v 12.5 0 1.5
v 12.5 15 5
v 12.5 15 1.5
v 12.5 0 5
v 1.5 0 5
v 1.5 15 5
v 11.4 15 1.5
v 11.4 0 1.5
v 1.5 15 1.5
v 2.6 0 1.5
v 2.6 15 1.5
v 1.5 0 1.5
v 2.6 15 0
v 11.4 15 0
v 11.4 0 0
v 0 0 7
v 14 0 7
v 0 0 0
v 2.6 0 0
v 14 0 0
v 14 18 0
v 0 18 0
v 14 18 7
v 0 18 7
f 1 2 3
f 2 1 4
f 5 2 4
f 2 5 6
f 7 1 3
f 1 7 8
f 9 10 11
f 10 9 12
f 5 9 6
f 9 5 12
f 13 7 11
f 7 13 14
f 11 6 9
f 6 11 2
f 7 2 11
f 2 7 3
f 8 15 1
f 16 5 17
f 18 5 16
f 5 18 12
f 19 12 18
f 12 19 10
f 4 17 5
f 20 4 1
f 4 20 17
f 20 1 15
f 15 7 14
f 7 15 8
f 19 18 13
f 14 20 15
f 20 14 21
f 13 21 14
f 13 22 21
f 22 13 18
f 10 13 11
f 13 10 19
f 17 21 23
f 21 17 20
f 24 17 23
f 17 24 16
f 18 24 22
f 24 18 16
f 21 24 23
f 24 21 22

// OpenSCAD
module pureconnect_cover() {
  difference() {
    cube([14, 18, 7]);
    translate([(14-11.0)/2, 0, 0])
      union() {
        translate([0, 0, 1.5])
          cube([11.0, 15, 3.5]);
        translate([(11.0-8.8)/2, 0, 0])
          cube([8.8, 15, 2]);
      }
  }
}

pureconnect_cover();
